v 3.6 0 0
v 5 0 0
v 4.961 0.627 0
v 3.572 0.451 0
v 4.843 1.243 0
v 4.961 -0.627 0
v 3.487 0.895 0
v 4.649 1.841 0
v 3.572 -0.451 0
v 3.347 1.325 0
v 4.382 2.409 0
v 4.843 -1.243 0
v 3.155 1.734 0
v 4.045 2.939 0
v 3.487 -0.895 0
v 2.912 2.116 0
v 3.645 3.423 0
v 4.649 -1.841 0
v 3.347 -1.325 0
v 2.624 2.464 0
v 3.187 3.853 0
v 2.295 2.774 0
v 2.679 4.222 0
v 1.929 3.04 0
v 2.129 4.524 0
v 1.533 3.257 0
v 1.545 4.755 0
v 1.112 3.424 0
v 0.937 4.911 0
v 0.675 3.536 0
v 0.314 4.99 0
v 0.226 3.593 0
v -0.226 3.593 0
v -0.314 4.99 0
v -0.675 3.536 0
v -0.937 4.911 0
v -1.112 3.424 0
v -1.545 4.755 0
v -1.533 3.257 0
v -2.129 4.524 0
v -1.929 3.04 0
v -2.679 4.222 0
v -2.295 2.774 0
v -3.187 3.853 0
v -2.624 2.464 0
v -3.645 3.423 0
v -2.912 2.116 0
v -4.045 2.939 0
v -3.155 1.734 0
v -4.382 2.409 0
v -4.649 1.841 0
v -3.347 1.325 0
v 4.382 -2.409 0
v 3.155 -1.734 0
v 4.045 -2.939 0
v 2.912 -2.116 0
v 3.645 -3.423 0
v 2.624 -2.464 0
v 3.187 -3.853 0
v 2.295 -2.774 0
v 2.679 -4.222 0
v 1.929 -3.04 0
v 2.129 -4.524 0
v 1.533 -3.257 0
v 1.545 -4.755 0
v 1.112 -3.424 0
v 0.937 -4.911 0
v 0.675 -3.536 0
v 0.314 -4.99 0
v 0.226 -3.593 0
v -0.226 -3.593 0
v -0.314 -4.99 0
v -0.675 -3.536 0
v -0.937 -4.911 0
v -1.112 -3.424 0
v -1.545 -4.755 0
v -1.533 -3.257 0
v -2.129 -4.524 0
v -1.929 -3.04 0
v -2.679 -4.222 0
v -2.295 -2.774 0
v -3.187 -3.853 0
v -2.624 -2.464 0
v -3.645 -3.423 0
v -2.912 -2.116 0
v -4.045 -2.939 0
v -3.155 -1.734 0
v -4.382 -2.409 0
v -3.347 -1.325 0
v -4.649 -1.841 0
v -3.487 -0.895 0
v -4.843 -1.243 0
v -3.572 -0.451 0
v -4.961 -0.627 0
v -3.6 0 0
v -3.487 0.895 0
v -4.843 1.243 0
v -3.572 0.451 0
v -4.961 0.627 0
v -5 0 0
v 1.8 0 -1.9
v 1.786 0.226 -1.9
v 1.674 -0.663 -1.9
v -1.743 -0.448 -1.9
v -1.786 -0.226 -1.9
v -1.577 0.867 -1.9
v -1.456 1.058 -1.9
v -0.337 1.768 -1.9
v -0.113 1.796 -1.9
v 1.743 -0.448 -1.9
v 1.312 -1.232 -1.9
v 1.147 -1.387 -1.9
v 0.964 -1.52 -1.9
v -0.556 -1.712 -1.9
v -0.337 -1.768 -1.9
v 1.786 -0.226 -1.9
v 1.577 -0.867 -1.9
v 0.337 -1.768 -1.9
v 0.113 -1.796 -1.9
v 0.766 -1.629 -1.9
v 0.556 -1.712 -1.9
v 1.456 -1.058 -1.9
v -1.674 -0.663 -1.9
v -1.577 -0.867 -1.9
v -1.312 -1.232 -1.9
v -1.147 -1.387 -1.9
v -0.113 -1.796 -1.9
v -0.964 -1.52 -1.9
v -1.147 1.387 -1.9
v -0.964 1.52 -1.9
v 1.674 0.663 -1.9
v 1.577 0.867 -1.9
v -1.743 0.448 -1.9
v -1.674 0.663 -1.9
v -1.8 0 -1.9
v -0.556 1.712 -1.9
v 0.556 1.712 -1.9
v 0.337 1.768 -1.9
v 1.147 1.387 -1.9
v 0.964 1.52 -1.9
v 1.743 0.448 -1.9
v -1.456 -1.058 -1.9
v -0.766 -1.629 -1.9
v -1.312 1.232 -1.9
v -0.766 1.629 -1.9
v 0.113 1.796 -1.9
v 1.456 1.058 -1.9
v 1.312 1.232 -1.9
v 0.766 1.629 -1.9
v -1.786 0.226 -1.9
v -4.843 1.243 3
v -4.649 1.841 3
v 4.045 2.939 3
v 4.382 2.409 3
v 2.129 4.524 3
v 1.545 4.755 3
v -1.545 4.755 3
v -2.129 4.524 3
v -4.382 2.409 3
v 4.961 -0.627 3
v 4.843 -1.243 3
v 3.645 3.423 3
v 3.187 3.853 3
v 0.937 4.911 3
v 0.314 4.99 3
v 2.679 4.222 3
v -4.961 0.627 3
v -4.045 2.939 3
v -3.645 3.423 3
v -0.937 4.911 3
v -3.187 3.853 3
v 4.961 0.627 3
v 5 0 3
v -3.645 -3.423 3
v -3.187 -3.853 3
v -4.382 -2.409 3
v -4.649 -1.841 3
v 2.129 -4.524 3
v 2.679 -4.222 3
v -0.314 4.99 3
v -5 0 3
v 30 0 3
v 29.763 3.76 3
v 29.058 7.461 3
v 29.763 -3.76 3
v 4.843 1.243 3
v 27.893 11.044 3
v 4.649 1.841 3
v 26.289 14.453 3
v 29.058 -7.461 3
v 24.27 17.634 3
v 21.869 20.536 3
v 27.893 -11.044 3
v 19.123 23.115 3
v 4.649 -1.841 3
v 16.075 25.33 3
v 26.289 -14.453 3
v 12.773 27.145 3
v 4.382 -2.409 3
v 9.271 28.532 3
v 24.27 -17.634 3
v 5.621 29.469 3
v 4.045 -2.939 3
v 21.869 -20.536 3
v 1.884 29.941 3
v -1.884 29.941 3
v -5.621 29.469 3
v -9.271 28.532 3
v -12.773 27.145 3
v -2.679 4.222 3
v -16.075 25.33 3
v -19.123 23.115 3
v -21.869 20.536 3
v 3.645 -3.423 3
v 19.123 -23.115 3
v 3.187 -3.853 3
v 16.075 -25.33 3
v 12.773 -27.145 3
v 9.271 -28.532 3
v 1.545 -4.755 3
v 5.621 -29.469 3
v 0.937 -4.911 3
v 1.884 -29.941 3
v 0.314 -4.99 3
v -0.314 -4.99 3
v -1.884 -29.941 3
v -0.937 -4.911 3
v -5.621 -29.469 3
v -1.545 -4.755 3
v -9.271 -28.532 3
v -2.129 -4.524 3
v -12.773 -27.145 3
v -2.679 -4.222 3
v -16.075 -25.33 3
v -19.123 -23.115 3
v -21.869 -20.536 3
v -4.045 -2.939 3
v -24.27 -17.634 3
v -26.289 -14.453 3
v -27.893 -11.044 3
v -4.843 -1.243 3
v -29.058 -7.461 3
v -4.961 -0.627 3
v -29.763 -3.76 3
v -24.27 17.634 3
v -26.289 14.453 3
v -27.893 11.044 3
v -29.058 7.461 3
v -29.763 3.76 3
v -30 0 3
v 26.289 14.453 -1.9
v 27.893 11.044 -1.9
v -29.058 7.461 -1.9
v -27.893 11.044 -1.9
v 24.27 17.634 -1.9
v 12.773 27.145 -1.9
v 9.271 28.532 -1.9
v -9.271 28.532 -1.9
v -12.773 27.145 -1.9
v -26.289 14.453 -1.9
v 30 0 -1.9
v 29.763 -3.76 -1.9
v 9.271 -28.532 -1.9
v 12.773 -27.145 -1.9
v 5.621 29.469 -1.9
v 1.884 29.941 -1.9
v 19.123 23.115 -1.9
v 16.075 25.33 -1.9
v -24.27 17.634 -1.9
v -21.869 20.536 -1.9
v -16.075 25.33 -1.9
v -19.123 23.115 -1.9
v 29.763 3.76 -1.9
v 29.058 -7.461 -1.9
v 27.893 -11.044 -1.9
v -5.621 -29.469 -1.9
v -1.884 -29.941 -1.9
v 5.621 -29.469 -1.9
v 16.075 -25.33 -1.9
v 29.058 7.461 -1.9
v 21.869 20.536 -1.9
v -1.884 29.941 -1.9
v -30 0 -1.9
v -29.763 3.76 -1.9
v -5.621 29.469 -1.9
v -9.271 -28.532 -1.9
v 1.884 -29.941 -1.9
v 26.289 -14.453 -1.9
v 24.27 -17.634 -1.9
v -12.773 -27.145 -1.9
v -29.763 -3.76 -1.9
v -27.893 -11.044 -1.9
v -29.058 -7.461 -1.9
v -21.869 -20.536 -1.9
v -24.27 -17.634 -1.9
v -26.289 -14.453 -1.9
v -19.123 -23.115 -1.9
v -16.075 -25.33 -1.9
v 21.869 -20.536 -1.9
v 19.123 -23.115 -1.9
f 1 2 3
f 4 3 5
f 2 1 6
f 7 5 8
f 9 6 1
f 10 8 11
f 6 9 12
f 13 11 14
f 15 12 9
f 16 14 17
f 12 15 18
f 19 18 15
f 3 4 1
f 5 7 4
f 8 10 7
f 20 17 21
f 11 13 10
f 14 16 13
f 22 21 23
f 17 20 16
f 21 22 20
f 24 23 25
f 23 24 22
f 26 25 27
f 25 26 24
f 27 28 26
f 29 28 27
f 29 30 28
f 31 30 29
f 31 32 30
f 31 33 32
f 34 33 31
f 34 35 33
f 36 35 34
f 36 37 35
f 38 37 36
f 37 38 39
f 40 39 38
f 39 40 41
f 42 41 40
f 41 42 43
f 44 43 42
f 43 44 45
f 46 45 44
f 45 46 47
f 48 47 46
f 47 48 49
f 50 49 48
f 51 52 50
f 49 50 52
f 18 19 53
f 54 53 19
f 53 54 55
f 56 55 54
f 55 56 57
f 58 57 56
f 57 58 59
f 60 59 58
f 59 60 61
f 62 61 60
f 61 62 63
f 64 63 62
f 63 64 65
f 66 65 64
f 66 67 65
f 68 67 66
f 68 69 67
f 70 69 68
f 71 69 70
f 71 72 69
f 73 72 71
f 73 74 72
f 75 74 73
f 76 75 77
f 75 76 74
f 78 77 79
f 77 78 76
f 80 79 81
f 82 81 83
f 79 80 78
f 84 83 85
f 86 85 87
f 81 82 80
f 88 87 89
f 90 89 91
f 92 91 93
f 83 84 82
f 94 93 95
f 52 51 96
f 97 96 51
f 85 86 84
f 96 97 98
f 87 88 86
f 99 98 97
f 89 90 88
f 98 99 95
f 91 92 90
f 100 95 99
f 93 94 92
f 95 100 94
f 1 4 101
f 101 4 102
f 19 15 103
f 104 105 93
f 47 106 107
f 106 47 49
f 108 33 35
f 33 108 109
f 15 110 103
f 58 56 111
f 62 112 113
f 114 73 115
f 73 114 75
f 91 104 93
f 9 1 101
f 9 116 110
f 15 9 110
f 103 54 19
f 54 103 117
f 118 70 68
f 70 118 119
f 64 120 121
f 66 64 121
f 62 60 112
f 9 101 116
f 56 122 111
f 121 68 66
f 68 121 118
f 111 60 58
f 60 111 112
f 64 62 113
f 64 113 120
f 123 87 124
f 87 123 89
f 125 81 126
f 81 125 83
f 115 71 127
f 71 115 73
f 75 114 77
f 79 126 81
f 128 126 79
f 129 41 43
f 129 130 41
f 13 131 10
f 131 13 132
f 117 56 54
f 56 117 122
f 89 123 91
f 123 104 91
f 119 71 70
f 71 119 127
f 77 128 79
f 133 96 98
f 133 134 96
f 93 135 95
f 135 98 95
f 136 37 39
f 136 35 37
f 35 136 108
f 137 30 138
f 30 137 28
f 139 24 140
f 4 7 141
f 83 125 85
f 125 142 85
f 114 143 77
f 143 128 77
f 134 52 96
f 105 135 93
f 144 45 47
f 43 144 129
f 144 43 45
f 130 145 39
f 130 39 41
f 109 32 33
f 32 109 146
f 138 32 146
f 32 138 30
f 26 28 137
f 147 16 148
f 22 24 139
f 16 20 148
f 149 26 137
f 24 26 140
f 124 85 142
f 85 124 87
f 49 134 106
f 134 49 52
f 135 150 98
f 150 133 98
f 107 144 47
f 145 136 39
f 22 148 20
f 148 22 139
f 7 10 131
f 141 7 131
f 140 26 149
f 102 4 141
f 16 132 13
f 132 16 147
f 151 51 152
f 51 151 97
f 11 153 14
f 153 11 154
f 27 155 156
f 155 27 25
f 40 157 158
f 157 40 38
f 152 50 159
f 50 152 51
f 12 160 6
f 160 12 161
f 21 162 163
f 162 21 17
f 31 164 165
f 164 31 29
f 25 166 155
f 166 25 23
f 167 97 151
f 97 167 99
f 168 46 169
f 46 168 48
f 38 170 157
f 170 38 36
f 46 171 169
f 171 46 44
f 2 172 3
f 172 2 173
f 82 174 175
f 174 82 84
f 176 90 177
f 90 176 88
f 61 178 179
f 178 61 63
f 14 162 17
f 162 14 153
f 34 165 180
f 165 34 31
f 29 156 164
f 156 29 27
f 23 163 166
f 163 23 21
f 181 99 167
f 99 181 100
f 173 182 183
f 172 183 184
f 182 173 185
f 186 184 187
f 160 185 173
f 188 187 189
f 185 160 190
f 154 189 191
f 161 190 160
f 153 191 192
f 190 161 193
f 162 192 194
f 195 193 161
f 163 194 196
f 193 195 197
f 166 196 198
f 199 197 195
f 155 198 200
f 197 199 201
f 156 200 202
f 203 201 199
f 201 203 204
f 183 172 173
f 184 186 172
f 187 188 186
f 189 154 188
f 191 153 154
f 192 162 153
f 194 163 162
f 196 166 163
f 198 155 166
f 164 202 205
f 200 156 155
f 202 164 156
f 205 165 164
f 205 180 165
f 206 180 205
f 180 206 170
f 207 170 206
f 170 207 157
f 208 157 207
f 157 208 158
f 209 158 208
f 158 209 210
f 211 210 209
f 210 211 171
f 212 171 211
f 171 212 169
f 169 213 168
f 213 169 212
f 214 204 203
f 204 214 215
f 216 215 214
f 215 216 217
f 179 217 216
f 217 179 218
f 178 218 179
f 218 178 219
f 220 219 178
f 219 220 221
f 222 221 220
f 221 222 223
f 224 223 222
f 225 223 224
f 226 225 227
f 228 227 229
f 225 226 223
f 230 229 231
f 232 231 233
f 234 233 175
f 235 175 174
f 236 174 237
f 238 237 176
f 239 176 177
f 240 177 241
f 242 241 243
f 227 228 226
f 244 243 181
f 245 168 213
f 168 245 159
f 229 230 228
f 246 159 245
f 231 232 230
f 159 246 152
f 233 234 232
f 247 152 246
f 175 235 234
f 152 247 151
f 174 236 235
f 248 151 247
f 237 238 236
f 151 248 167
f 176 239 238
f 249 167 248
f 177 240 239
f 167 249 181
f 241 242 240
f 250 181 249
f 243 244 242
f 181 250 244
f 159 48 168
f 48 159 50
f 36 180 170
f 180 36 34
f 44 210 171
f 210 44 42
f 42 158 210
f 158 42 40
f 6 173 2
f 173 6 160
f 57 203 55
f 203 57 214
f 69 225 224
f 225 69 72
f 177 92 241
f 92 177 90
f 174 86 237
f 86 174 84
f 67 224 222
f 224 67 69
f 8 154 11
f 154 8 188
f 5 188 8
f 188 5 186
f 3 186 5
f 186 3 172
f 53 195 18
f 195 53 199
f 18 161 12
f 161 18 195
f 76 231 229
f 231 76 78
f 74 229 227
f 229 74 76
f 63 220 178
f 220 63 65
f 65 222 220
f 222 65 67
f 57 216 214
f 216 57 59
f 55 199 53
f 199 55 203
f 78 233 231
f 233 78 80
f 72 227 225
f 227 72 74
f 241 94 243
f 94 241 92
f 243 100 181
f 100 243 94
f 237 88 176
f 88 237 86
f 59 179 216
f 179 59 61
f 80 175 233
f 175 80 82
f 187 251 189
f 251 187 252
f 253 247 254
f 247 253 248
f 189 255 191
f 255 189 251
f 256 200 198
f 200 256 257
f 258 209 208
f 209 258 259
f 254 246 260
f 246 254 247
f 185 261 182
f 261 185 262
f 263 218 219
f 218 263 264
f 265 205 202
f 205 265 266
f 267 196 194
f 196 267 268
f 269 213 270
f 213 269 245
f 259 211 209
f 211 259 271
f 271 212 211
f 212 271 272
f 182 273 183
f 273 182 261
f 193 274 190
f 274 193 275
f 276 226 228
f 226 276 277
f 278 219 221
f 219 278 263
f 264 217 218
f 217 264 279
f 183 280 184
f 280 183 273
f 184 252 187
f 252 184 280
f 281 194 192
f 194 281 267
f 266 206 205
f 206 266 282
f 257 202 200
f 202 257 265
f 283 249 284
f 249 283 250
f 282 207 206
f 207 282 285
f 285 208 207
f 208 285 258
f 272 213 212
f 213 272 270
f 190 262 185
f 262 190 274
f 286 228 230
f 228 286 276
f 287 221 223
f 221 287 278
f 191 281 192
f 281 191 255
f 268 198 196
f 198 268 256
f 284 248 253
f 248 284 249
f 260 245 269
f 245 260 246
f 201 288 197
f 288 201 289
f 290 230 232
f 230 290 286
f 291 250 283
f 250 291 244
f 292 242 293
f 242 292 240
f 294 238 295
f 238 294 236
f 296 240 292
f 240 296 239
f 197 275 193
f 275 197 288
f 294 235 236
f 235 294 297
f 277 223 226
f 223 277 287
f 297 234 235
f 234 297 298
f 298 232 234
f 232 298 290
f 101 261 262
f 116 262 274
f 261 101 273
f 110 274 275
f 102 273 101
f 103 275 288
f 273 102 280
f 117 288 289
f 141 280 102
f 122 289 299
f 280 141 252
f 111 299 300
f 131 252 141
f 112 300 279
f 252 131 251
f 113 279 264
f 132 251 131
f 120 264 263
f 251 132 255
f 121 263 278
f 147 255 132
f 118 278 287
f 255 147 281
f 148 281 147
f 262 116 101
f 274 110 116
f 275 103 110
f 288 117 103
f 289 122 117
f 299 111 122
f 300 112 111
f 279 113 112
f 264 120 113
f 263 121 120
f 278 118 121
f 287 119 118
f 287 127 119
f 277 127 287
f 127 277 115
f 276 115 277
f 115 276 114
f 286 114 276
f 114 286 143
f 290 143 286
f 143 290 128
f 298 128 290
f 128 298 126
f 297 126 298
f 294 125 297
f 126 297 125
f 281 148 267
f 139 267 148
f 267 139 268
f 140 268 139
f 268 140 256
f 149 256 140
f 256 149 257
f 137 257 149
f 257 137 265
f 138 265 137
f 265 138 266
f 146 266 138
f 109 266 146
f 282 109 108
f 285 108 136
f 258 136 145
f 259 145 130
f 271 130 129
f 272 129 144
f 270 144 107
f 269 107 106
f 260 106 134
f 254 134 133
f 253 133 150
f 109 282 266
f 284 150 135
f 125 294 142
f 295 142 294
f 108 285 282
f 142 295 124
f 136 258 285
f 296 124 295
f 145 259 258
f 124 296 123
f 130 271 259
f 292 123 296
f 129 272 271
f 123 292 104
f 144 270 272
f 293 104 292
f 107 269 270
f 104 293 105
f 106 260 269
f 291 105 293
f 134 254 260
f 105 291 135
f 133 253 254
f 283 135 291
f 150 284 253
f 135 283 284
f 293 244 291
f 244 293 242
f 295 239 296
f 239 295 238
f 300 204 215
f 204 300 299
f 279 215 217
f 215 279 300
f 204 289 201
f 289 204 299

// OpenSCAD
$fn = 50;


difference() {
	union() {
		translate(v = [0, 0, -1.9000000000]) {
			cylinder(h = 4.9000000000, r = 30.0000000000);
		}
	}
	union() {
		translate(v = [0, 0, 0]) {
			rotate(a = [0, 0, 0]) {
				difference() {
					union() {
						translate(v = [0, 0, -4.9000000000]) {
							cylinder(h = 4.9000000000, r = 1.5000000000);
						}
						translate(v = [0, 0, -1.9000000000]) {
							cylinder(h = 1.9000000000, r1 = 1.8000000000, r2 = 3.6000000000);
						}
						translate(v = [0, 0, -4.9000000000]) {
							cylinder(h = 4.9000000000, r = 1.8000000000);
						}
						translate(v = [0, 0, -4.9000000000]) {
							cylinder(h = 4.9000000000, r = 1.5000000000);
						}
					}
					union();
				}
			}
		}
		#cylinder(h = 3, r = 5.0000000000);
	}
}
